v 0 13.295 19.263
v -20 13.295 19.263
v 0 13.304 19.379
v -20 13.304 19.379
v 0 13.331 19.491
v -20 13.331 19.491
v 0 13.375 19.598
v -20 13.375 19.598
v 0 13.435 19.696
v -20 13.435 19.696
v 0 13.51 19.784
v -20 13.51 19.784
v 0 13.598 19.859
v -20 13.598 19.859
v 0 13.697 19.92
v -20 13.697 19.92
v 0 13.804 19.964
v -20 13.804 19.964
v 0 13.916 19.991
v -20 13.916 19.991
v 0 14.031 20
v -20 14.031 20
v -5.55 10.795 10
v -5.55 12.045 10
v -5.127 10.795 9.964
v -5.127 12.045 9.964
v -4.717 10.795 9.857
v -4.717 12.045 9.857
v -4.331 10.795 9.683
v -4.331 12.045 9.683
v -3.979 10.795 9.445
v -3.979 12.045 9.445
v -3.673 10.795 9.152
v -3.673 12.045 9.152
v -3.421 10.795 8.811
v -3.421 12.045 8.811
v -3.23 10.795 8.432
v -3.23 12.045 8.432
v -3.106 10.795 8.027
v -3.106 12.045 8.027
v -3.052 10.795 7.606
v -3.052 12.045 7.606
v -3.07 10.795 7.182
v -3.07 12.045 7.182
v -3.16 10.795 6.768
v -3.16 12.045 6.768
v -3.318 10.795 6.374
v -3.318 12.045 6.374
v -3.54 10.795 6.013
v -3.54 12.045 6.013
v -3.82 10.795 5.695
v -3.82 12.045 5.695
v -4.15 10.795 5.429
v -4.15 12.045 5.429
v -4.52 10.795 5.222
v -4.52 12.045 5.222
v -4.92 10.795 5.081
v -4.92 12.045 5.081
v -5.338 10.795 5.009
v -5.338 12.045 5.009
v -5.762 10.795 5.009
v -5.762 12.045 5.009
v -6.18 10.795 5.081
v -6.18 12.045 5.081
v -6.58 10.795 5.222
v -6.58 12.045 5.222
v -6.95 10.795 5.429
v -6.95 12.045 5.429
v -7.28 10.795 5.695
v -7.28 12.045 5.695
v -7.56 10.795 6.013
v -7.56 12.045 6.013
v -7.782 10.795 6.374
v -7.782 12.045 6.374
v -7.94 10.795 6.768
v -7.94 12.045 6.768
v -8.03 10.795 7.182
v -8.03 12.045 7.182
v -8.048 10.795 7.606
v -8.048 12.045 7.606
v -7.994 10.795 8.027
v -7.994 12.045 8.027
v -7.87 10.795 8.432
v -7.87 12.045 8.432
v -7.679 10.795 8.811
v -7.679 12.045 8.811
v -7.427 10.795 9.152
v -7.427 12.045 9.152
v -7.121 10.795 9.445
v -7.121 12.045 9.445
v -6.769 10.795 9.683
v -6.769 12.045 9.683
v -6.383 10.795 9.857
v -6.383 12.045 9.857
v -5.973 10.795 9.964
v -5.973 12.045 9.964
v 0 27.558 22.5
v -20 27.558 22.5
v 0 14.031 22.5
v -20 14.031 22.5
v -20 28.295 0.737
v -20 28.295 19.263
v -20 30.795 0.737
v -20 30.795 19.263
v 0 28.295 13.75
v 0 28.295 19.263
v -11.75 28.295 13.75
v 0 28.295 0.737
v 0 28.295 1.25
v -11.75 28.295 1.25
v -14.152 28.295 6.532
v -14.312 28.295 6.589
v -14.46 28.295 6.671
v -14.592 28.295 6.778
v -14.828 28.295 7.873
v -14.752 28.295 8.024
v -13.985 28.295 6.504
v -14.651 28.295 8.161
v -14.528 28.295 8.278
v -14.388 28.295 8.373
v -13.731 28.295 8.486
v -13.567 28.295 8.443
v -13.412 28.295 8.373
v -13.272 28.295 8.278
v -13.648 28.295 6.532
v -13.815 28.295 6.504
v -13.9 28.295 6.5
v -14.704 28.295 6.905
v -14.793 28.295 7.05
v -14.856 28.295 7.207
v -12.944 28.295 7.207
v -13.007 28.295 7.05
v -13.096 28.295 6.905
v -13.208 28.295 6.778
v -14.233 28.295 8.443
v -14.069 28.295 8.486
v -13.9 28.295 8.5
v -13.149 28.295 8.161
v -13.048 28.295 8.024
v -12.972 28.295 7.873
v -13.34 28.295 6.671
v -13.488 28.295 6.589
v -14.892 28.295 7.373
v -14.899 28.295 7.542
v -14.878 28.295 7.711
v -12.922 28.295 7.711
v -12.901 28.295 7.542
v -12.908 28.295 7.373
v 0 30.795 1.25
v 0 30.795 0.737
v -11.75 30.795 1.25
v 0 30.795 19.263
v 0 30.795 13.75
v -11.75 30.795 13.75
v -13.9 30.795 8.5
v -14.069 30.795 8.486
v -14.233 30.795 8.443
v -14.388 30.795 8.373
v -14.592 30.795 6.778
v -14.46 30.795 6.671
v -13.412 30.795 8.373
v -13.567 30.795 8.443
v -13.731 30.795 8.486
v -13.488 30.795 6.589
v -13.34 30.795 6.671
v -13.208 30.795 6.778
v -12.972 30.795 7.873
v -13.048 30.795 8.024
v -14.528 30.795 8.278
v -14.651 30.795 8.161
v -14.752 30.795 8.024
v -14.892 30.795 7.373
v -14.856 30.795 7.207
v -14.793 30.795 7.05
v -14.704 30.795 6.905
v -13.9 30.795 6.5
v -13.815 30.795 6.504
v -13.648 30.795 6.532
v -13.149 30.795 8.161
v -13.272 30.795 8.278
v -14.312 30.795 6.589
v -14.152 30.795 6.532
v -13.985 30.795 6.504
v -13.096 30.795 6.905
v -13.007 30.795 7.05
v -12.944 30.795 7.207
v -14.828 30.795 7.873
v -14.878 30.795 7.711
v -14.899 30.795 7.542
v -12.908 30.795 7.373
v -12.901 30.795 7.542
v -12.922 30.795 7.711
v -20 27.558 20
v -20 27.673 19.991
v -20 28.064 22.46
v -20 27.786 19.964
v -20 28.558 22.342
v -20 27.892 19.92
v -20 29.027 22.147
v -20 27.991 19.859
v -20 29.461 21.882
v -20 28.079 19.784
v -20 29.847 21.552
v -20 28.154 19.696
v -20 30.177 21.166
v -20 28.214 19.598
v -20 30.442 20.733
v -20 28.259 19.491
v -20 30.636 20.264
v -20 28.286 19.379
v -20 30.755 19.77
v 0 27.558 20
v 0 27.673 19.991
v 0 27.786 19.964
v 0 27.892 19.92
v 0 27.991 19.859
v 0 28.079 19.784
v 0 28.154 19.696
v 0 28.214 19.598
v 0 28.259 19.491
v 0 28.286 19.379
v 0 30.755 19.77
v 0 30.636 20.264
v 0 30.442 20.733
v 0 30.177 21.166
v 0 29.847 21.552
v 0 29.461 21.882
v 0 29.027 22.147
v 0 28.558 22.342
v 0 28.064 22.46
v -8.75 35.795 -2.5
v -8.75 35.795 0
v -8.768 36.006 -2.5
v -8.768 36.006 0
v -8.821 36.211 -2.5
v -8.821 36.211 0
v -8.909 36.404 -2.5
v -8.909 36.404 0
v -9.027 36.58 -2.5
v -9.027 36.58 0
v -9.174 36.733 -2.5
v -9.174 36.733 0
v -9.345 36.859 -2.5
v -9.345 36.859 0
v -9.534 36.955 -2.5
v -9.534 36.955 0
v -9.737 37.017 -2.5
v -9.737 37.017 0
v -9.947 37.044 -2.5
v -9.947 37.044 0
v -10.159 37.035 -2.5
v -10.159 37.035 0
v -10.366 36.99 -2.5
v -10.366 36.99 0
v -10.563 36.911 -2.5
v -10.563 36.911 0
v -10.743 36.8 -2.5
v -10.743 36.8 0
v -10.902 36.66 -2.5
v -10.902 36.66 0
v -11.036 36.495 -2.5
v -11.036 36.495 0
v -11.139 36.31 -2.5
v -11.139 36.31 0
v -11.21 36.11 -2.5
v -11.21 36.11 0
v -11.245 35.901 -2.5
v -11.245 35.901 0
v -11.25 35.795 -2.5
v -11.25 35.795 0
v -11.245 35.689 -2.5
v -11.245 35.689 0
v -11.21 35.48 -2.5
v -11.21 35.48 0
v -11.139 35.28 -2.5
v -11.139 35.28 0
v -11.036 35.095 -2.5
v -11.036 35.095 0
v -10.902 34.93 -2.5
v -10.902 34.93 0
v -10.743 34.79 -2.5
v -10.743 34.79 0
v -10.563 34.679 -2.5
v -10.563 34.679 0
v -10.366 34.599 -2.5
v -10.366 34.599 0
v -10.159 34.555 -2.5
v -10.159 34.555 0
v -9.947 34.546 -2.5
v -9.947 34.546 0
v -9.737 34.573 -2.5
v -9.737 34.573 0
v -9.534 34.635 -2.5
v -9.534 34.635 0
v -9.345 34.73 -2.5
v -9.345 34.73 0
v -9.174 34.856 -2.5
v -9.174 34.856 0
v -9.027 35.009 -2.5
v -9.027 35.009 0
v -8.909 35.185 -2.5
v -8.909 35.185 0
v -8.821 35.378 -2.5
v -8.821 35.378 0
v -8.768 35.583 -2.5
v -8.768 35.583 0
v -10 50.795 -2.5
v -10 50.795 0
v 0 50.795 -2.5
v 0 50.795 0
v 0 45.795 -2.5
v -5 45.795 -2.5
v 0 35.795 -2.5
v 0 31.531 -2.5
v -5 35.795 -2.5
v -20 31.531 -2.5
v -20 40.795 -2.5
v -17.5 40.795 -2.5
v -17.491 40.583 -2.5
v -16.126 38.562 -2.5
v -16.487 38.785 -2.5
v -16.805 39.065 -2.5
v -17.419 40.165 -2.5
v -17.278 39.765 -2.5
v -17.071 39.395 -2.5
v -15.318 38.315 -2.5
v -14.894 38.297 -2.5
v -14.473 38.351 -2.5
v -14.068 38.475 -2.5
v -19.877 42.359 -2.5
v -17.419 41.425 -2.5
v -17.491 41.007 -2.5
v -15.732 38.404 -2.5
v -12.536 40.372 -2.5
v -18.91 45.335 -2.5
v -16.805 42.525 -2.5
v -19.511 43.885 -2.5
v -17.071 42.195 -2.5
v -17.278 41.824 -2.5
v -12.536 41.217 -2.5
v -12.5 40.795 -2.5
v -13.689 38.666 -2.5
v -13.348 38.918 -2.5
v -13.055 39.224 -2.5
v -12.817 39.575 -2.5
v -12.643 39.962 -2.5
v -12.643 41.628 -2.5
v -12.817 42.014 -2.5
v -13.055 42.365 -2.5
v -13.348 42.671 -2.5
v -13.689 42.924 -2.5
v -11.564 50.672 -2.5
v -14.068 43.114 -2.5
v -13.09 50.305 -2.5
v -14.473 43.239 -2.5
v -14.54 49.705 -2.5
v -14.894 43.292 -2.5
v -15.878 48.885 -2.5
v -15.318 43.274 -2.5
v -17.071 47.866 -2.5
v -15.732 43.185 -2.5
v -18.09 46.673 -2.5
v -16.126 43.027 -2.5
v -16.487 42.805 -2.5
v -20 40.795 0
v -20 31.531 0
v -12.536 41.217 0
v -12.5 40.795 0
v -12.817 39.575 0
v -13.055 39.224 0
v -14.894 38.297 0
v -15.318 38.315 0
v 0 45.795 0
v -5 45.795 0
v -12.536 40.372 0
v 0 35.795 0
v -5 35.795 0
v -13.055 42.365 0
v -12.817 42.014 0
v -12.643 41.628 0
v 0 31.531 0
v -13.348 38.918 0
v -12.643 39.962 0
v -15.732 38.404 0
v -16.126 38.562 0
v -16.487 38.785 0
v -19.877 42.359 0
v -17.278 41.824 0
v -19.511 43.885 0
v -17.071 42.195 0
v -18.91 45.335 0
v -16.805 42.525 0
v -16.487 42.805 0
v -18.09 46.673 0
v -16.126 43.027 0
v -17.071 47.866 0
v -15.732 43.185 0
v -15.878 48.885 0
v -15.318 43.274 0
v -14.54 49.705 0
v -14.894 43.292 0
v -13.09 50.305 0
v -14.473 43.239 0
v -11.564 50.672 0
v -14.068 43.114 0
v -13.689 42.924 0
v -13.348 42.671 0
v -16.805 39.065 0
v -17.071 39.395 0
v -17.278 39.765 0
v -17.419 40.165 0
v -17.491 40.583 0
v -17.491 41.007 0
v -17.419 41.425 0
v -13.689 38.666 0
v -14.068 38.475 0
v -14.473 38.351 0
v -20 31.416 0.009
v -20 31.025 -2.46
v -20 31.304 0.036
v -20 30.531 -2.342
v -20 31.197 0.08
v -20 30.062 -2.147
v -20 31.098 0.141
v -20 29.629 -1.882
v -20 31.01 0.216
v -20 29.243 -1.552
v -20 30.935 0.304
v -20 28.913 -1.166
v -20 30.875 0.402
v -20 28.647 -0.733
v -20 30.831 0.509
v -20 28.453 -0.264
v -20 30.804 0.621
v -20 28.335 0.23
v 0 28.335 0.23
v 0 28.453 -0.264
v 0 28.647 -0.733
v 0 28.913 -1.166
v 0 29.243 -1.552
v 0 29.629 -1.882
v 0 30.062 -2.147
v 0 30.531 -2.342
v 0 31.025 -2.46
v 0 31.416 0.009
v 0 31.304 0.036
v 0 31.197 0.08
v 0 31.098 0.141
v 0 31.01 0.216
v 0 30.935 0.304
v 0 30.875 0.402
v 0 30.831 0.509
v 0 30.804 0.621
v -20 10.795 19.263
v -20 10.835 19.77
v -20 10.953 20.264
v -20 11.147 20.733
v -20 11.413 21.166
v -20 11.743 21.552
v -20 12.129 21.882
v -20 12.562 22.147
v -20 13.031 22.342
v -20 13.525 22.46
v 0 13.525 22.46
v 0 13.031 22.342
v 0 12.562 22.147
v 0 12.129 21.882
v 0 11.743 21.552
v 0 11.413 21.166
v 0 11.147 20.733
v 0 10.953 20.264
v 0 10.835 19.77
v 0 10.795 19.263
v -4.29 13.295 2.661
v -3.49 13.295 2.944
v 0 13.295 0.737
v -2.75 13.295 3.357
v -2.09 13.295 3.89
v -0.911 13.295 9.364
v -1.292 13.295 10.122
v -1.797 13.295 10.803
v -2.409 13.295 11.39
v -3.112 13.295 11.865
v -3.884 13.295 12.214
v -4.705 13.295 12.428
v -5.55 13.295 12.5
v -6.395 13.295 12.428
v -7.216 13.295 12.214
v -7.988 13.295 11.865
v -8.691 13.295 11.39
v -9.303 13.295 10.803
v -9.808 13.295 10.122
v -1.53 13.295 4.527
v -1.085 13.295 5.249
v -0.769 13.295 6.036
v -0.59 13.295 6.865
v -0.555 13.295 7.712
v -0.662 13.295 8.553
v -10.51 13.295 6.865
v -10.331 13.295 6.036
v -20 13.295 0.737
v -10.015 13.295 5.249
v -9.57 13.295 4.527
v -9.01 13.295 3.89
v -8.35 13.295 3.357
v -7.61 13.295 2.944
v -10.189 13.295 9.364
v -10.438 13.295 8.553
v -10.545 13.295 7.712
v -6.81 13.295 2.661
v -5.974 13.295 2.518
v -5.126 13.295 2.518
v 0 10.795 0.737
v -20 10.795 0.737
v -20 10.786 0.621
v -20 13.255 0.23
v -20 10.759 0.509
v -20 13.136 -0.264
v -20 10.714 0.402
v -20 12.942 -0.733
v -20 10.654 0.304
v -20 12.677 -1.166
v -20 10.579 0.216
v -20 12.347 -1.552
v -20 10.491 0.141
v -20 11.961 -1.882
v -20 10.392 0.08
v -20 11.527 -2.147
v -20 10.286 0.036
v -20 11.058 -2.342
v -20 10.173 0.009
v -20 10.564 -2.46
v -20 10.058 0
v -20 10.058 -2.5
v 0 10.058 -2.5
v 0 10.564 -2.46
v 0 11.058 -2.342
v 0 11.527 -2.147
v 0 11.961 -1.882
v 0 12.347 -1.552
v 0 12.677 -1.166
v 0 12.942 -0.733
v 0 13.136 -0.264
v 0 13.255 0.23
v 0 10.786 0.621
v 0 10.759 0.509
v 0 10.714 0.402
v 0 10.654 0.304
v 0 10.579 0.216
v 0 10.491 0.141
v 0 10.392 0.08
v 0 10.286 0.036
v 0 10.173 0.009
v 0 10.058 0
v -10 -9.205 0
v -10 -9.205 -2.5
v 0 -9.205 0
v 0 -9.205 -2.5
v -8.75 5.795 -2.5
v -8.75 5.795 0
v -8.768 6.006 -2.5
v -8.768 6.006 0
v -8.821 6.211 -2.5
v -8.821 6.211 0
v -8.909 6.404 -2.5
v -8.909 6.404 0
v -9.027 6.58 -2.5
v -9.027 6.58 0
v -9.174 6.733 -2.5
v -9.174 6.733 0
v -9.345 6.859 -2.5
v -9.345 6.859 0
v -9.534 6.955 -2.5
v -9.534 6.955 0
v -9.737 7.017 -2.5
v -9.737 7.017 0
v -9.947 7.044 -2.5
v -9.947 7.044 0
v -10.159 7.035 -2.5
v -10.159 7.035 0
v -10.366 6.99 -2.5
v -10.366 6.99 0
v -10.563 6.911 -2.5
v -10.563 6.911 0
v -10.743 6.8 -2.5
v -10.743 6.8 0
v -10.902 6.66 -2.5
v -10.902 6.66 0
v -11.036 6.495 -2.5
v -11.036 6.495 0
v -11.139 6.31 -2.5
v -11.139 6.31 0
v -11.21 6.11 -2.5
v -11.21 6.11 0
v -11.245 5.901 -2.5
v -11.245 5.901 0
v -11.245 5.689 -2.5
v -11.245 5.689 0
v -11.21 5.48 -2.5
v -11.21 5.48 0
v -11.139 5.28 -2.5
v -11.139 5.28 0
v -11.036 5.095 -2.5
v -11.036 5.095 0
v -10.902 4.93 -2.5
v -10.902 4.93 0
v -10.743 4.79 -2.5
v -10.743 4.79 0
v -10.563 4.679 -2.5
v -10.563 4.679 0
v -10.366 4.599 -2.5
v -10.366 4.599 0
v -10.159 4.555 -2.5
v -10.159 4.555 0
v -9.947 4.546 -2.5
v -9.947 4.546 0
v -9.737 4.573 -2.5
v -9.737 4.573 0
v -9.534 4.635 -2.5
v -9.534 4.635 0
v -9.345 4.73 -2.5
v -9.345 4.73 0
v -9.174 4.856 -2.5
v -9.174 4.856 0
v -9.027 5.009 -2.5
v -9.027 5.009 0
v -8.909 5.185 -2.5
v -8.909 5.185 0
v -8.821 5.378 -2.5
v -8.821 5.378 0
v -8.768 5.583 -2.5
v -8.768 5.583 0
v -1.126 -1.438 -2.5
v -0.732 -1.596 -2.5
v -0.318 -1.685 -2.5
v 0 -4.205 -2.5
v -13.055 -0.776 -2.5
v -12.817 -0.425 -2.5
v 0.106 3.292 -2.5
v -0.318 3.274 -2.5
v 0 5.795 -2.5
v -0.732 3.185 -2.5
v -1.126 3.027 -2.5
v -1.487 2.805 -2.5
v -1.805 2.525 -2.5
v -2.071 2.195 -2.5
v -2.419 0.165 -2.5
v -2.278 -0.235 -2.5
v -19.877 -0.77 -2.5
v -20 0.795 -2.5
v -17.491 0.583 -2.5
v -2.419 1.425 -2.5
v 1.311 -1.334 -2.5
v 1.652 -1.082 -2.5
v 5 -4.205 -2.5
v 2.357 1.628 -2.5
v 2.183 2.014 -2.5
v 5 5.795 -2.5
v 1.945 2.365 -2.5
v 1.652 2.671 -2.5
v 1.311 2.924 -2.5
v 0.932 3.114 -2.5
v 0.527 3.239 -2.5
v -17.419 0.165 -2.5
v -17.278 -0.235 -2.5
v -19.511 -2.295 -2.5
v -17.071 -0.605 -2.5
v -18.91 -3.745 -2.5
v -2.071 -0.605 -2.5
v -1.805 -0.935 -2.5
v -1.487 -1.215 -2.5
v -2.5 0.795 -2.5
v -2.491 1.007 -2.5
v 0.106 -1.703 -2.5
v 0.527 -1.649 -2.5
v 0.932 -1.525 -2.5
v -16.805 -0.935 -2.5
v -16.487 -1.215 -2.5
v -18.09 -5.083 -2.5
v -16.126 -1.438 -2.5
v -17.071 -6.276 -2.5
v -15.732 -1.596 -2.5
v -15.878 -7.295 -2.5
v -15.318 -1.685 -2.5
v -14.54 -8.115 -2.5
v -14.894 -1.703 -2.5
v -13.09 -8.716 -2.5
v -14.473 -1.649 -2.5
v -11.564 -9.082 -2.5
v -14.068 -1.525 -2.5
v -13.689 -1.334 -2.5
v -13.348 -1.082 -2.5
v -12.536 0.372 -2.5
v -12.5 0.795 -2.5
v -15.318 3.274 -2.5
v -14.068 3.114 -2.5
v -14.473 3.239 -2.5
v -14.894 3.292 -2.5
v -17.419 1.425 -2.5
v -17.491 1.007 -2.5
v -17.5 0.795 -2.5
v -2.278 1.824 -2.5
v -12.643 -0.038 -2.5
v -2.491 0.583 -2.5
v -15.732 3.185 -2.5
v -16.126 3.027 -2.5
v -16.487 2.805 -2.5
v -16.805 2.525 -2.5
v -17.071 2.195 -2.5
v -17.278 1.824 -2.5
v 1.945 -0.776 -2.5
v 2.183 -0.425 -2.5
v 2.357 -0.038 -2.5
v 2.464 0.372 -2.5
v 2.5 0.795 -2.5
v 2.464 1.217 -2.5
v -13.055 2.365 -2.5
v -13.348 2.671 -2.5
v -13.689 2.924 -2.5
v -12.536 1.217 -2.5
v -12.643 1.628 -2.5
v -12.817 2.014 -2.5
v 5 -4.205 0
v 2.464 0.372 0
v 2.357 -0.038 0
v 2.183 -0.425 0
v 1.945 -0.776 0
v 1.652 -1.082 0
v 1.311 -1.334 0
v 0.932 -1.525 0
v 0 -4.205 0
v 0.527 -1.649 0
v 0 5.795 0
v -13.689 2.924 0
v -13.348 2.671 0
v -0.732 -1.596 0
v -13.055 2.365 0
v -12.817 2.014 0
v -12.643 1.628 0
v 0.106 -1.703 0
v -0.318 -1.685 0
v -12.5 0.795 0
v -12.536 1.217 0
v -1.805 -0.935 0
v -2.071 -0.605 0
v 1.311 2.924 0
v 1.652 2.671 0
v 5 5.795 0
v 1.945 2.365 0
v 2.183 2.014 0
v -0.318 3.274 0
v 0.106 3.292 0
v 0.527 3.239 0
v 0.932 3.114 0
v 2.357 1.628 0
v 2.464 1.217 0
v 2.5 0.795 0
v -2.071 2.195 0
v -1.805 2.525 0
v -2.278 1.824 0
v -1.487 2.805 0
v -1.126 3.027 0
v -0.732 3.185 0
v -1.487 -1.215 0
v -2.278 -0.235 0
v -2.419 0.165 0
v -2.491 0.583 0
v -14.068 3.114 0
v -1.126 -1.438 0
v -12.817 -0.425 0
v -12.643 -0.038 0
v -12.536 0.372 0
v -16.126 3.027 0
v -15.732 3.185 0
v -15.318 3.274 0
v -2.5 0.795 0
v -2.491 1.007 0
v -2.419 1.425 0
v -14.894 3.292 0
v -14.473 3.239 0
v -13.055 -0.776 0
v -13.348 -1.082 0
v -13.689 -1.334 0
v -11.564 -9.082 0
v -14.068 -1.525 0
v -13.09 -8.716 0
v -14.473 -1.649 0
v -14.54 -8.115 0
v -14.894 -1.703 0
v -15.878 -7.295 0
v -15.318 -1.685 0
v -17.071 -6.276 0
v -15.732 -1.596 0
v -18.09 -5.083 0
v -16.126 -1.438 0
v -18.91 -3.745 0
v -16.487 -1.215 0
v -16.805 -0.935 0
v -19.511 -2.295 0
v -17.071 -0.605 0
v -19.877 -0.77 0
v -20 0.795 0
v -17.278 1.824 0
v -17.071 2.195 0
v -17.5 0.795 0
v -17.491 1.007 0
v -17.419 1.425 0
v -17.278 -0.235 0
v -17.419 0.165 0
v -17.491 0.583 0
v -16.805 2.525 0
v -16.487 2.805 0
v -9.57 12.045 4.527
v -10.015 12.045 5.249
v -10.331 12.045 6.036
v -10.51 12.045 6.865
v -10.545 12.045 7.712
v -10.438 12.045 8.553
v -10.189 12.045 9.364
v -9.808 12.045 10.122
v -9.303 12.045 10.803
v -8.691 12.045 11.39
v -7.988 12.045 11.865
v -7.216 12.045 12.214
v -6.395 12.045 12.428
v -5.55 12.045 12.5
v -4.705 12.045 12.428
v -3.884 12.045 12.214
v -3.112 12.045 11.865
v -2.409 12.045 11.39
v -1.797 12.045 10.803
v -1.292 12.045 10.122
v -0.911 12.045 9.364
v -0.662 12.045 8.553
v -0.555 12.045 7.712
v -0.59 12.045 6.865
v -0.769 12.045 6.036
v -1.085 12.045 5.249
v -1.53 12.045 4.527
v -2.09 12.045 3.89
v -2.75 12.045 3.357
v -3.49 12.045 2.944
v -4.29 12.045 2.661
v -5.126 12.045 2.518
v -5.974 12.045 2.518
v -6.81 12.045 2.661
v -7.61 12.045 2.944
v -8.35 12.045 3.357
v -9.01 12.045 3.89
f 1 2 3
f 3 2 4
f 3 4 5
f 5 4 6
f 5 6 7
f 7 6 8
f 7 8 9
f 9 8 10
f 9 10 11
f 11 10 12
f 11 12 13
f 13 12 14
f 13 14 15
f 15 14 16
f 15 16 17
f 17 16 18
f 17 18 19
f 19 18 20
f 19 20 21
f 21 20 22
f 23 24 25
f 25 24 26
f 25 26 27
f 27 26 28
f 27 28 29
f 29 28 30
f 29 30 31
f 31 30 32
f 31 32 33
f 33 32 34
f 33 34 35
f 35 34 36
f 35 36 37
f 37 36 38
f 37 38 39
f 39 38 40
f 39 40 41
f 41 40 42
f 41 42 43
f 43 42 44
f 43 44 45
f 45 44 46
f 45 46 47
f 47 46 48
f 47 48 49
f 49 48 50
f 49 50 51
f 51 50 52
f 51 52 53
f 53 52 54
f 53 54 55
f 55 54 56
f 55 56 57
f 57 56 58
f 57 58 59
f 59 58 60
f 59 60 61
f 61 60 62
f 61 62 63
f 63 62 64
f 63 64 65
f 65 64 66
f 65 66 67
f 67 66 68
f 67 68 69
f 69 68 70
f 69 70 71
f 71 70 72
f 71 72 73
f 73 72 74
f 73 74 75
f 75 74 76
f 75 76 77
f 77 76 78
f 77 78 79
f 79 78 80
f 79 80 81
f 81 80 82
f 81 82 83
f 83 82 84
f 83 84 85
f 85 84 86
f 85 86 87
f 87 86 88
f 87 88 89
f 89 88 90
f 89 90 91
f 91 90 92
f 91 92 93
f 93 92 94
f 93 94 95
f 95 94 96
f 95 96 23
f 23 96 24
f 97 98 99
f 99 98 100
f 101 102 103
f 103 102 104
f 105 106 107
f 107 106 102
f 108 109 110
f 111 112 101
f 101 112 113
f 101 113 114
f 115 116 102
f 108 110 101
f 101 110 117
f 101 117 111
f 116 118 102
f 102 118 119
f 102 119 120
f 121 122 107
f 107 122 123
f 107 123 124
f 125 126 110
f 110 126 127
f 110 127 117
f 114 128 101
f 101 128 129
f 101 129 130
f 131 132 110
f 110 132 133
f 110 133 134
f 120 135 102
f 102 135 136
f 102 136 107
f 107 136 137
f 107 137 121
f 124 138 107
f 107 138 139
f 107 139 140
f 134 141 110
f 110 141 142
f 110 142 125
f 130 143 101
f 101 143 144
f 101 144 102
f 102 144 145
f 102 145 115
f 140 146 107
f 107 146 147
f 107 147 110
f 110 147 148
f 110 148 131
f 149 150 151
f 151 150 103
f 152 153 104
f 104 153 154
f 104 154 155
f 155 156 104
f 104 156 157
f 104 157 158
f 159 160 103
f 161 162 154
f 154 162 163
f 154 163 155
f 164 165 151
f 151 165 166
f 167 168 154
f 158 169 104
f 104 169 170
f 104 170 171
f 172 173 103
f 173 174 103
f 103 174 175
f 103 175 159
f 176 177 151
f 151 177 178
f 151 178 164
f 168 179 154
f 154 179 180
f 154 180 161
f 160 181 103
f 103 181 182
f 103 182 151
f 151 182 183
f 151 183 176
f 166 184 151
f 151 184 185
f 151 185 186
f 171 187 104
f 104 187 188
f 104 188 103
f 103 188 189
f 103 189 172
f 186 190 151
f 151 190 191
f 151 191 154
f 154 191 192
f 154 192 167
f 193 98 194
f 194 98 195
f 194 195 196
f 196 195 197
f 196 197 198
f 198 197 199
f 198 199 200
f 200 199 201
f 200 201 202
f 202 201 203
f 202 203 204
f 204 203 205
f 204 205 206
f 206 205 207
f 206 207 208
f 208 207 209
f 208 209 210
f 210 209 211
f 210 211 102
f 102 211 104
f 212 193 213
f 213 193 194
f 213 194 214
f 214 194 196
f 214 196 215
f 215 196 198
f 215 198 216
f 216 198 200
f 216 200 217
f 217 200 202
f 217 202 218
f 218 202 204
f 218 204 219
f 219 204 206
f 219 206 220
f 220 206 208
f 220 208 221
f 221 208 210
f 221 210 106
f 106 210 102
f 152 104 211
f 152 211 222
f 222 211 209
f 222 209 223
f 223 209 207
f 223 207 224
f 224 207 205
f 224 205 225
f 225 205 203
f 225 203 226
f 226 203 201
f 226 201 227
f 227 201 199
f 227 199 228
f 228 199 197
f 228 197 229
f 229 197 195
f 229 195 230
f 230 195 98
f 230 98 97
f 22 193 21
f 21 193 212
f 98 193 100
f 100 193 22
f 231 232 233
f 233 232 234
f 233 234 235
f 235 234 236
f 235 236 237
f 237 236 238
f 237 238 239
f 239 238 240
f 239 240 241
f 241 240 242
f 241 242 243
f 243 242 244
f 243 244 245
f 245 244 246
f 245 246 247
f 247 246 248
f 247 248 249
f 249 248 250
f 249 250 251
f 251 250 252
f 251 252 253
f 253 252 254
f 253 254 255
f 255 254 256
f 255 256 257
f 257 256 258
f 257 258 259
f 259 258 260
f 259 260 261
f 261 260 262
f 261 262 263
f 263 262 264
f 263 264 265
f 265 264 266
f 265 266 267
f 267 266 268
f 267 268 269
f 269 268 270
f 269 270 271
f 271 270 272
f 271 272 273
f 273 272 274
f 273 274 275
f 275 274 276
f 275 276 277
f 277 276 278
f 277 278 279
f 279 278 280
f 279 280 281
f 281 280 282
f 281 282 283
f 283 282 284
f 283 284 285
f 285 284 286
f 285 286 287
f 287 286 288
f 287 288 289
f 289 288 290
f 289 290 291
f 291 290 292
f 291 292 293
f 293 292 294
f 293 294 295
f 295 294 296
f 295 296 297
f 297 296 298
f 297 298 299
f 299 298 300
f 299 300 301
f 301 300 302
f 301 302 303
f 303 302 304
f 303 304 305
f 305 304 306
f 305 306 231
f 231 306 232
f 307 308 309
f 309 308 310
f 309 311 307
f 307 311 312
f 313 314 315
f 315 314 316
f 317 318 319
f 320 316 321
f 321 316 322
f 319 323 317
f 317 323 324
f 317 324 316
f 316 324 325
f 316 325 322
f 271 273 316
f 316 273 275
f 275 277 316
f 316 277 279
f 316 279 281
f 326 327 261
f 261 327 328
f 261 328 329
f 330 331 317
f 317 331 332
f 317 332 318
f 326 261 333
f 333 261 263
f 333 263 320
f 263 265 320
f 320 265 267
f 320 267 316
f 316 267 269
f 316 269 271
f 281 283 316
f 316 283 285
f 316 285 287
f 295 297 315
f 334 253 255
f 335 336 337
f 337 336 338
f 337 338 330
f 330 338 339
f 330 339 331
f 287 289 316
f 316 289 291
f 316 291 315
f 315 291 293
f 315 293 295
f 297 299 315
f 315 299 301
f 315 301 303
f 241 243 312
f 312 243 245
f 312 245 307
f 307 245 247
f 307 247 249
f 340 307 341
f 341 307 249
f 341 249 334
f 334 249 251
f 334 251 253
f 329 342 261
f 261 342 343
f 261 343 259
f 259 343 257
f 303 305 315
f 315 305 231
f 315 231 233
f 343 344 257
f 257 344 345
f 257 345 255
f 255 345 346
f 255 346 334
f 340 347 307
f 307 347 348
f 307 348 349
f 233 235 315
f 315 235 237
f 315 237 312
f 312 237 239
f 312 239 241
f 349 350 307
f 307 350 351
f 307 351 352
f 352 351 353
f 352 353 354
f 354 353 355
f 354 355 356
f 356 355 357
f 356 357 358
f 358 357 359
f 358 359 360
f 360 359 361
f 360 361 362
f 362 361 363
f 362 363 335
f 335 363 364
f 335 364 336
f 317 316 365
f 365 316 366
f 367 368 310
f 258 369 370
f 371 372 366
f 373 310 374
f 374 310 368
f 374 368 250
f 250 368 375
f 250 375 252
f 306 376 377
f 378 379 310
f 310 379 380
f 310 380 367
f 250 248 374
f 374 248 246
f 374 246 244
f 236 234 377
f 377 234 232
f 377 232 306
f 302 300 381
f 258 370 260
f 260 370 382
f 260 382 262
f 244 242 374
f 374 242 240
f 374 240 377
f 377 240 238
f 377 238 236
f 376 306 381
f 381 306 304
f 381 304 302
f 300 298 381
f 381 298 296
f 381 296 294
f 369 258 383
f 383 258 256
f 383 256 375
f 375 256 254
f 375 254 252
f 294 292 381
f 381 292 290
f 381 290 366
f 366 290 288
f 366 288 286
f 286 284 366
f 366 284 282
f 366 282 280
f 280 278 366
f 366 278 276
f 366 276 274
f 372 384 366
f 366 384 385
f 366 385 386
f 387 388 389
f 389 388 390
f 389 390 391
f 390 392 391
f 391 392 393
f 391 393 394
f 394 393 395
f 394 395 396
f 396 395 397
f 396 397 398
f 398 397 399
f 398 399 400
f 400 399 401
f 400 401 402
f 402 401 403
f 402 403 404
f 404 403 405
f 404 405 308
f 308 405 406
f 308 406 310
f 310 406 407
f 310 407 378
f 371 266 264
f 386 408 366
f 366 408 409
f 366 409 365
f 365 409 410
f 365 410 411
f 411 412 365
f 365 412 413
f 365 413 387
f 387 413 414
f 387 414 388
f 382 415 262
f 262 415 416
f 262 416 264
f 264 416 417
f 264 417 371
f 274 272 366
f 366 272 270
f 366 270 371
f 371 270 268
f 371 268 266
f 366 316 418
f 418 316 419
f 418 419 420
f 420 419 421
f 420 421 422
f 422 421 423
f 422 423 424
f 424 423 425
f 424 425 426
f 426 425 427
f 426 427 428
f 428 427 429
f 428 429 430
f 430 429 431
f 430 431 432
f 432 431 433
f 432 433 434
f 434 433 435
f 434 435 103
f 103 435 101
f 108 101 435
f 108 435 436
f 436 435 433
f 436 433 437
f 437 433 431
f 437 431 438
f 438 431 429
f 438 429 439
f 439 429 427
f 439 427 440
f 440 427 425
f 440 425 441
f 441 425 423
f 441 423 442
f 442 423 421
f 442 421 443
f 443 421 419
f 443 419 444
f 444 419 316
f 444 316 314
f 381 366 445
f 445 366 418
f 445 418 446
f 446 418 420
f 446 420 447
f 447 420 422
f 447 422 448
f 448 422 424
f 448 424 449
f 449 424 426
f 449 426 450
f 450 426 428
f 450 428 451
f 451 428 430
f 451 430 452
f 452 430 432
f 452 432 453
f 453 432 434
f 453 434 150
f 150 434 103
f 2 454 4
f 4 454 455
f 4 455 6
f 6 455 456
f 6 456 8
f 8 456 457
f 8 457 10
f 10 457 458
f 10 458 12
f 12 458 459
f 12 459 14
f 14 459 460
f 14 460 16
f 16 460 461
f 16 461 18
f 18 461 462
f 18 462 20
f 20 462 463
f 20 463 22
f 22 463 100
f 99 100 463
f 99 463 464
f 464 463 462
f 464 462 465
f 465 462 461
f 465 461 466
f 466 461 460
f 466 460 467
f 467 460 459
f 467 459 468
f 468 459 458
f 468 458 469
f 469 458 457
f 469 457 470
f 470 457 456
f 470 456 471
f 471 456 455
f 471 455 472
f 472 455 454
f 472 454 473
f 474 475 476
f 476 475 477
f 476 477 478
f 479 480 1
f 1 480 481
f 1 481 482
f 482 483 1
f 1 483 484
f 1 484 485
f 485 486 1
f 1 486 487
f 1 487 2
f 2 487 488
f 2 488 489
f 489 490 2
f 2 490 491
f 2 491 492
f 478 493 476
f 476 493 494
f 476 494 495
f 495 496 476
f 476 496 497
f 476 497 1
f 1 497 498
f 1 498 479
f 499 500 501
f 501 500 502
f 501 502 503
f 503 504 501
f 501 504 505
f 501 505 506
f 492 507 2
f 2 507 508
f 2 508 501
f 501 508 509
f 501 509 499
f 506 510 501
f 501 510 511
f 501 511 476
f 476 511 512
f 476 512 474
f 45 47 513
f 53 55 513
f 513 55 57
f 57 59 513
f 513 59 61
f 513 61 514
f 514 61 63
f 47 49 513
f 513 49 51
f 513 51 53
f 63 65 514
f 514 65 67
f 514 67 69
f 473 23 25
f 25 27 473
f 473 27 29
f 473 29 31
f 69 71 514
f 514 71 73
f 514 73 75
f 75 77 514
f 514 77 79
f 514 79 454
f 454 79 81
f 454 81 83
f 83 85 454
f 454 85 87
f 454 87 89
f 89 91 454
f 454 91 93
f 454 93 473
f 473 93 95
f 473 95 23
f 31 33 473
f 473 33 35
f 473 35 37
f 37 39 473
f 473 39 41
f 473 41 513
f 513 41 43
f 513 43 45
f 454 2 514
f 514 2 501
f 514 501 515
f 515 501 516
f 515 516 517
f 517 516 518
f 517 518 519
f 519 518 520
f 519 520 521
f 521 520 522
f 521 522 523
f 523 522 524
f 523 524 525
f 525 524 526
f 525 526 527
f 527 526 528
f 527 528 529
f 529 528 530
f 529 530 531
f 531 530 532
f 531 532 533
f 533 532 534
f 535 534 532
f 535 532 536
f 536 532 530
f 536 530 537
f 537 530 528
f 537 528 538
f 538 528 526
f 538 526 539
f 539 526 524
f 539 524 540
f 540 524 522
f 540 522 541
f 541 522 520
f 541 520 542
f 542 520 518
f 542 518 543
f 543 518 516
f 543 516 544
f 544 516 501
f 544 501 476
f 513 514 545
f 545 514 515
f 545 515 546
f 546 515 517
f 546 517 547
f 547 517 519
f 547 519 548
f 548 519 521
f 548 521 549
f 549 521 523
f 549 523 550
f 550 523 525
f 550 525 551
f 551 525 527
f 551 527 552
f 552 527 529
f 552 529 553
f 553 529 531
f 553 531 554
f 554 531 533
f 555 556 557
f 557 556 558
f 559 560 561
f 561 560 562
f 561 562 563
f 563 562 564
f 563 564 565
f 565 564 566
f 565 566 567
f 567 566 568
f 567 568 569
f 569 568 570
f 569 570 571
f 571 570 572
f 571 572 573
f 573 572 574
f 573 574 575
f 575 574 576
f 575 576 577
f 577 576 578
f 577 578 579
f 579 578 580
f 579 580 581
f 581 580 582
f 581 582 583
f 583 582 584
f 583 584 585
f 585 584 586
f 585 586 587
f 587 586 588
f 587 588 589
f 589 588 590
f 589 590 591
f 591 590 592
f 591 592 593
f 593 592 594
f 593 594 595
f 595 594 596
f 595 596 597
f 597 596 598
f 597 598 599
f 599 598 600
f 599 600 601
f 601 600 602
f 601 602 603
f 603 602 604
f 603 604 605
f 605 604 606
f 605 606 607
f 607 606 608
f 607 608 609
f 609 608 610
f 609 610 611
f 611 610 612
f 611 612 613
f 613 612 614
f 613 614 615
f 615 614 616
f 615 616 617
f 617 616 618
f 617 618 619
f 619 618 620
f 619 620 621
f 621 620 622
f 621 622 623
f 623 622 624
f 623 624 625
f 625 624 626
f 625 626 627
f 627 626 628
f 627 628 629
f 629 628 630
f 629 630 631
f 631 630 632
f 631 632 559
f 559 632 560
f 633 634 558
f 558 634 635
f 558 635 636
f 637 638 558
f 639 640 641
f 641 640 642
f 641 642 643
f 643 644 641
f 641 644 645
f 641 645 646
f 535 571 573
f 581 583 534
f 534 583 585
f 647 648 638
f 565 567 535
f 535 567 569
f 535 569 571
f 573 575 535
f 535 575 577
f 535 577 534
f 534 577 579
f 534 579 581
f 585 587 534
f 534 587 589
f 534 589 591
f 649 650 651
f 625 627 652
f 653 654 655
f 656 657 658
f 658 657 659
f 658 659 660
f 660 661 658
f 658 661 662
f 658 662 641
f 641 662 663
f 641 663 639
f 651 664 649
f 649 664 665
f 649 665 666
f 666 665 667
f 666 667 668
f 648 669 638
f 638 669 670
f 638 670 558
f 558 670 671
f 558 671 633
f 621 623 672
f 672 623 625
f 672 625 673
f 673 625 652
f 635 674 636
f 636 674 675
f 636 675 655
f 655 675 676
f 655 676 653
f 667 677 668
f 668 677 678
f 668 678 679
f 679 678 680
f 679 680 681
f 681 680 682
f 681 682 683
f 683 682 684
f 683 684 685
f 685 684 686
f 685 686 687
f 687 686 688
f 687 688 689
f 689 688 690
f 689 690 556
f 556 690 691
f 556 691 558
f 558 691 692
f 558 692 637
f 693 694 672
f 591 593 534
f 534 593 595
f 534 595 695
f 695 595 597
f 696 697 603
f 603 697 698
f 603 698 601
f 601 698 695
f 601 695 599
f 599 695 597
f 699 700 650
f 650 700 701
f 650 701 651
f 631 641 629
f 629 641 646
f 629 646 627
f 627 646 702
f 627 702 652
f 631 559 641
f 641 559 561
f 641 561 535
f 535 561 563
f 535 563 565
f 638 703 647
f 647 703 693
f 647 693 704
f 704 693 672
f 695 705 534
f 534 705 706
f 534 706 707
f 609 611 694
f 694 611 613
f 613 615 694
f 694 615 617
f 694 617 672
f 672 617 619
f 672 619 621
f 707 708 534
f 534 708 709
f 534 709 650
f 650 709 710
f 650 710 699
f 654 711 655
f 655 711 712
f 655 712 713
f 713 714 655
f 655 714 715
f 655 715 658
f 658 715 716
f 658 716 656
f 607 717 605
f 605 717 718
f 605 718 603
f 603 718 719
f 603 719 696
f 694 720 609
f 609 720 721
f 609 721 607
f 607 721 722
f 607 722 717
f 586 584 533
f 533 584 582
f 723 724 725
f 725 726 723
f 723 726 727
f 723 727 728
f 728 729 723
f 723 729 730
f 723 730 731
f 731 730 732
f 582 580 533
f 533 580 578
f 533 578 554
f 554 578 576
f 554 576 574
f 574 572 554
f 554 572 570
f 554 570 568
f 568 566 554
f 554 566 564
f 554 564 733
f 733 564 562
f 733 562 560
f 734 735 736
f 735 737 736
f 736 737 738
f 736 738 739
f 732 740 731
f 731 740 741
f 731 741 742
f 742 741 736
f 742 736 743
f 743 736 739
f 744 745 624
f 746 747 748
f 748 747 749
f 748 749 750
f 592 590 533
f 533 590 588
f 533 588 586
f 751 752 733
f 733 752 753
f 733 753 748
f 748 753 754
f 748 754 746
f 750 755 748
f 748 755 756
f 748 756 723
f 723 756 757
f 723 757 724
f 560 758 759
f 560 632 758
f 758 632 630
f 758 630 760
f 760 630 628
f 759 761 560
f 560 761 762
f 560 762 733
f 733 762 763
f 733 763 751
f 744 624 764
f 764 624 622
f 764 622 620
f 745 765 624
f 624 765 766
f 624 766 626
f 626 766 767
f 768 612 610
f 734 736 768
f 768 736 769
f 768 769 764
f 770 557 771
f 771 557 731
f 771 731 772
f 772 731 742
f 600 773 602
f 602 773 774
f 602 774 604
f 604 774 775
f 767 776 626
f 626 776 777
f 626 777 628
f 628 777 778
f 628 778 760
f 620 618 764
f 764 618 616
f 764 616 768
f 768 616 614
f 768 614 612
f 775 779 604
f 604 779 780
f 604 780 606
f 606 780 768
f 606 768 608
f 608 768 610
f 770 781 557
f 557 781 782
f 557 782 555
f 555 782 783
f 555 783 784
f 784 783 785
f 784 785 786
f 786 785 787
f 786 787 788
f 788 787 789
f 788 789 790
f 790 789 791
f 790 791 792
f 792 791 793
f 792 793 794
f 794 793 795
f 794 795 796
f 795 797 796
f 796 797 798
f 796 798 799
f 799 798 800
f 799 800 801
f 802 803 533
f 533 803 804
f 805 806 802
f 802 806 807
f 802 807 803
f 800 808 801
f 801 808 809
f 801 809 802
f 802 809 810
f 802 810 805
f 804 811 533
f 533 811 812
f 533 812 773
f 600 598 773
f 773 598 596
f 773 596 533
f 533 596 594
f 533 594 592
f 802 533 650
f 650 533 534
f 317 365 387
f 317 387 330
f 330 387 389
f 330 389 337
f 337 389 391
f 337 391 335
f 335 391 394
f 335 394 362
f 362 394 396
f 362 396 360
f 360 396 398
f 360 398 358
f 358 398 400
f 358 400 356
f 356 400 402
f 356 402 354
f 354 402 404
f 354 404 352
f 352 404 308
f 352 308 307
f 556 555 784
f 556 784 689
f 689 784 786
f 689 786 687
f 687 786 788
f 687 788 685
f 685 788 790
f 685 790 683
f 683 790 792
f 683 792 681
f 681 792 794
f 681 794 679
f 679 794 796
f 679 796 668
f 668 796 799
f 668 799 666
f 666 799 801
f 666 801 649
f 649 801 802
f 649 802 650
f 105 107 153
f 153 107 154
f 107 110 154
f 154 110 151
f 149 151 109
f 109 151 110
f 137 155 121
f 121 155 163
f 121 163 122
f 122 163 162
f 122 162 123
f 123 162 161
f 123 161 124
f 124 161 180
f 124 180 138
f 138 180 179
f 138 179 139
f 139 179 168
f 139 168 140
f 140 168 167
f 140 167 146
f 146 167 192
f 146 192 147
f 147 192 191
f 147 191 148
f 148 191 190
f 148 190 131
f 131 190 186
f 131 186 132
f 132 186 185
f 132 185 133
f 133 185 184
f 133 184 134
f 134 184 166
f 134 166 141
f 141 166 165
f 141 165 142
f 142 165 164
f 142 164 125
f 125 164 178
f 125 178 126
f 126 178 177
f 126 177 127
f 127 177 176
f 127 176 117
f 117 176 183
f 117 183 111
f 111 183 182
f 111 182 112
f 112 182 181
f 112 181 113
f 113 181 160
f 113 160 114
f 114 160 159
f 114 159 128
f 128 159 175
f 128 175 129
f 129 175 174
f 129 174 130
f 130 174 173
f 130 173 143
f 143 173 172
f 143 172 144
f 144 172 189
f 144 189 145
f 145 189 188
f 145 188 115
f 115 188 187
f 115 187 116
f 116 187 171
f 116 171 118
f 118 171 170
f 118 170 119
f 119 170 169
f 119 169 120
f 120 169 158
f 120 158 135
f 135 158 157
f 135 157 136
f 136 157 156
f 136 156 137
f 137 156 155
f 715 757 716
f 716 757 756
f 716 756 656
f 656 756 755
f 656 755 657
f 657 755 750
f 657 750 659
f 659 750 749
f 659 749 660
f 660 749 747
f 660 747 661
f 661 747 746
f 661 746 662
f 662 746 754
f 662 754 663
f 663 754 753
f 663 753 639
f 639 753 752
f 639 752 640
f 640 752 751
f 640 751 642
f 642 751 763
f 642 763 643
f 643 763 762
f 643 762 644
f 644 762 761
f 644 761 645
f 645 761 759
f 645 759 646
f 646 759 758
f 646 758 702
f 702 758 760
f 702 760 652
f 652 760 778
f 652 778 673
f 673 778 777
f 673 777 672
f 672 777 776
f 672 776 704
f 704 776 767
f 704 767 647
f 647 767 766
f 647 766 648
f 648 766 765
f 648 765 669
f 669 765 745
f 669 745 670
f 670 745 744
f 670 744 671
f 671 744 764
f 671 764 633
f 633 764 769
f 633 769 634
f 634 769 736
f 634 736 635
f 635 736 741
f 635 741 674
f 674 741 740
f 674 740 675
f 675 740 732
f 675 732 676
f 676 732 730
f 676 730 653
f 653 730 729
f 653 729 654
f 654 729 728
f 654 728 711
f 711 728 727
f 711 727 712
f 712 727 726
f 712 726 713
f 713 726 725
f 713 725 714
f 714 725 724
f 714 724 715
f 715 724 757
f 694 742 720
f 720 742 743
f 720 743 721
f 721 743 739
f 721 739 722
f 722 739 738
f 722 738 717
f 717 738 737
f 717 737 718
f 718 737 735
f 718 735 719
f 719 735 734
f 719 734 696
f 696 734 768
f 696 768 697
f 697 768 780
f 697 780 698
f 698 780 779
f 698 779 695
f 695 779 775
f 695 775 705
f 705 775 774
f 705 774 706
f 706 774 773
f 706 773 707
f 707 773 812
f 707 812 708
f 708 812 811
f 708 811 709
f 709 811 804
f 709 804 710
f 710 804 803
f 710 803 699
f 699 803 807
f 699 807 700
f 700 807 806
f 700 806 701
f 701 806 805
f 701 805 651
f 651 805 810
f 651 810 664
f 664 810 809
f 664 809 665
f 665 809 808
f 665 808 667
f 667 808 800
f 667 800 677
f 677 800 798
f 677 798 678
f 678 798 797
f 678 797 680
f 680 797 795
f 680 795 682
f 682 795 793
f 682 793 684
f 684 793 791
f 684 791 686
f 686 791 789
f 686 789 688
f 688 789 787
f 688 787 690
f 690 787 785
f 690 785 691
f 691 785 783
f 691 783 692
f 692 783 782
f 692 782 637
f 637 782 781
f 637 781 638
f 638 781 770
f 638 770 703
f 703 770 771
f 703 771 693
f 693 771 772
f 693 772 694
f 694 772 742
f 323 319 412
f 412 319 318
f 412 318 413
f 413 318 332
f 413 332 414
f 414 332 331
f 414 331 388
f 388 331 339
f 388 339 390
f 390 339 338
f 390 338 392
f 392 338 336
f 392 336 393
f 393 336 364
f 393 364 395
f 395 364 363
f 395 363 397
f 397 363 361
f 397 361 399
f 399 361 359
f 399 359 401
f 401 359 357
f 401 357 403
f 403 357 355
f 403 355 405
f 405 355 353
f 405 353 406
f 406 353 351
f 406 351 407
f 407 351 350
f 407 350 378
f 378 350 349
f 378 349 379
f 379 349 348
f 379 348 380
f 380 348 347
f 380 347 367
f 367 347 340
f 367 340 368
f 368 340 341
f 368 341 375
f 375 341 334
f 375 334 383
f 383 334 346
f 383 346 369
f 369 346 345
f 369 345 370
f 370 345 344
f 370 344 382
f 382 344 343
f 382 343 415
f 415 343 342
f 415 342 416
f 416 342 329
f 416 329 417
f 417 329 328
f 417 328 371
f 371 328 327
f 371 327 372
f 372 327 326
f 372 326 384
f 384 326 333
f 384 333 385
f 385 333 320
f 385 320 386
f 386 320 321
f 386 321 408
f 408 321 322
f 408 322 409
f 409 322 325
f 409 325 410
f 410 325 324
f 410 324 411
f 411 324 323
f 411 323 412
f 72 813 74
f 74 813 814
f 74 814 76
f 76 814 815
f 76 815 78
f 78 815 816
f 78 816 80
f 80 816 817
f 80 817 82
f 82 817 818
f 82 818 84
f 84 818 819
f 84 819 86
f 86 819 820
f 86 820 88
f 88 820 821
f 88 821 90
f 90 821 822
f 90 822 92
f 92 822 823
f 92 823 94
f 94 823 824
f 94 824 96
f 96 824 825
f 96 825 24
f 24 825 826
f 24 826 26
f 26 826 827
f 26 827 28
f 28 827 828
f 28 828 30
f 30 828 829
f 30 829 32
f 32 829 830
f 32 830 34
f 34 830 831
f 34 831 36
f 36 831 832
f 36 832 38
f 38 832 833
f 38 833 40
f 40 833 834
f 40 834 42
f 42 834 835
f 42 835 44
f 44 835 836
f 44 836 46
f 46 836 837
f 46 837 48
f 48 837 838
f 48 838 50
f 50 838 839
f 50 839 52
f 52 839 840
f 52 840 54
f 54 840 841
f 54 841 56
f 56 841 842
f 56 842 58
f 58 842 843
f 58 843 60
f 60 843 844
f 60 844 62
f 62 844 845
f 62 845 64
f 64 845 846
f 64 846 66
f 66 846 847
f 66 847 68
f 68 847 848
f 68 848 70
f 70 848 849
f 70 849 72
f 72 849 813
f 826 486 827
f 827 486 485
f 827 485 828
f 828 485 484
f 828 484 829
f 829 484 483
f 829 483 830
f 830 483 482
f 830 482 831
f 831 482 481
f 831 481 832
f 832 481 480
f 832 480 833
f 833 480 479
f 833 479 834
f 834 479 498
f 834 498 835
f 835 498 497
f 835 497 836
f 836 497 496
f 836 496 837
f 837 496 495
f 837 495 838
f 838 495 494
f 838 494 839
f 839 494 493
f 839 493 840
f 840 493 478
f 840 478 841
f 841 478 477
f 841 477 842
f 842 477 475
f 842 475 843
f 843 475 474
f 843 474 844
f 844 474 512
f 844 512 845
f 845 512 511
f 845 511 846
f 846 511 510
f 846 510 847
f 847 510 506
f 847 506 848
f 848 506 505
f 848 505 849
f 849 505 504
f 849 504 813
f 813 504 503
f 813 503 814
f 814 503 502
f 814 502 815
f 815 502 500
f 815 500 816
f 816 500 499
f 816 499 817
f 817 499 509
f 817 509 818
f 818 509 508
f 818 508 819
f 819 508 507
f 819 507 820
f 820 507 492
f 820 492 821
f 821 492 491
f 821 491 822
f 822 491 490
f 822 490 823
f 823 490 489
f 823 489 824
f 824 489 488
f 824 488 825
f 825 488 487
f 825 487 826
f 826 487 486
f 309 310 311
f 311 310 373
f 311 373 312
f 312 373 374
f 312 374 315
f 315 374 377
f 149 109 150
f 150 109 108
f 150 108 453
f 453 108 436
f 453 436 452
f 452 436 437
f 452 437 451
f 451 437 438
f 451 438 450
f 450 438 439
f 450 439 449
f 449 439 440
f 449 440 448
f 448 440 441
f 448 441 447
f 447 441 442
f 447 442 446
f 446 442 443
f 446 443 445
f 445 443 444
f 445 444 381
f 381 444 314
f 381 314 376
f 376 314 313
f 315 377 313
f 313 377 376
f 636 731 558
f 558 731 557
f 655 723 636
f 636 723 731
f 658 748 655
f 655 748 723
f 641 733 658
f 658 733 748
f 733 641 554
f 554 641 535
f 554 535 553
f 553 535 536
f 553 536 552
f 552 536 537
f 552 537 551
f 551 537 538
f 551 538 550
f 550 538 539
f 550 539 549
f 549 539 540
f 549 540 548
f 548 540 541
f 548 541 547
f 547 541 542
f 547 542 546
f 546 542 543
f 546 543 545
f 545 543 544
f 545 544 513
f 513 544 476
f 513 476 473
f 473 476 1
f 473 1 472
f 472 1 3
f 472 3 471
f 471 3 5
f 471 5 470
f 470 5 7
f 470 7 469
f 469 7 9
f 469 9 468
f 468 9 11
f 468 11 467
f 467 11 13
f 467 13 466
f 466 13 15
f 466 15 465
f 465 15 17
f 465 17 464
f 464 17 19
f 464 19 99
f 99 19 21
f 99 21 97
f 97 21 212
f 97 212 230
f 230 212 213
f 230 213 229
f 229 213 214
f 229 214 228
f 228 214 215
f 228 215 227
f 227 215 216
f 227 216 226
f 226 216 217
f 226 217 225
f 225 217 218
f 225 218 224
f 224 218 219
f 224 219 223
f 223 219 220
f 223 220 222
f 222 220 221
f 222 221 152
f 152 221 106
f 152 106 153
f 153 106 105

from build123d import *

# Parameters (mm, degrees)
SKETCH1_W           = 40
SKETCH1_H           = 60
SKETCH1_R           = 1.25
BASE_FLANGE1_DEPTH  = 2.5
SKETCH15_R          = 1
CUT_EXTRUDE3_DEPTH  = 10
JOG3_START          = -2.5
JOG3_OUTLINE_W      = 40
JOG3_OUTLINE_H      = 58.294687966
JOG3_OUTLINE_R      = 1
JOG3_OUTLINE_R_2    = 1.25
JOG3_DEPTH          = 2.5
JOG3_2_OUTLINE_W    = 40
JOG3_2_OUTLINE_H    = 1.705312034
JOG3_2_DEPTH        = 0.332528284
JOG3_START_2        = 19.2634
JOG3_3_OUTLINE_W    = 40
JOG3_3_OUTLINE_H    = 40
JOG3_3_OUTLINE_R    = 1
JOG3_3_OUTLINE_R_2  = 1.25
JOG3_3_DEPTH        = 3.2366
JOG3_4_OUTLINE_W    = 40
JOG3_4_OUTLINE_H    = 20.794687966
JOG3_4_OUTLINE_R    = 1.25
JOG3_4_DEPTH        = 3.2366
JOG3_5_OUTLINE_W    = 40
JOG3_5_OUTLINE_H    = 2.5
JOG3_5_DEPTH        = 20
JOG3_START_3        = 20
JOG3_6_OUTLINE_R    = 1.25
JOG3_6_OUTLINE_R_2  = 1
JOG3_6_DEPTH        = 2.5
JOG3_START_4        = -20
JOG3_7_DEPTH        = 40
JOG4_START          = -20
JOG4_DEPTH          = 40
JOG4_2_DEPTH        = 40
JOG4_START_2        = -3
JOG4_3_OUTLINE_R    = 1.25
JOG4_3_DEPTH        = 4
FILLET1_R           = 10
SKETCH18_R          = 2.5
BOSS_EXTRUDE1_DEPTH = 2.5
SKETCH19_R          = 1
SKETCH19_W          = 23.5
SKETCH19_H          = 12.5
CUT_EXTRUDE4_DEPTH  = 2.5
SKETCH20_R          = 2.5
CUT_EXTRUDE6_DEPTH  = 10
SKETCH23_R          = 2.5
CUT_EXTRUDE7_DEPTH  = 51.062460986
SKETCH24_R          = 5
CUT_EXTRUDE8_DEPTH  = 1.25
SKETCH26_R          = 2.5
CUT_EXTRUDE12_DEPTH = 51.062460987
SKETCH27_W          = 20
SKETCH27_H          = 13.5268
CUT_EXTRUDE13_DEPTH = 61.042487703


with BuildPart() as part:
    # Base-Flange1: sheet metal written as solids
    # Sketch1 → Base-Flange1 (new body)
    with BuildSketch(Plane.XY):
        Rectangle(SKETCH1_W, SKETCH1_H)
        with Locations((10, 15)):
            Circle(SKETCH1_R, mode=Mode.SUBTRACT)
        with Locations(Location((10, -15, 0), (0, 0, 180))):
            Circle(SKETCH1_R, mode=Mode.SUBTRACT)
        with Locations((-10, -15)):
            Circle(SKETCH1_R, mode=Mode.SUBTRACT)
        with Locations(Location((-10, 15, 0), (0, 0, 180))):
            Circle(SKETCH1_R, mode=Mode.SUBTRACT)
    extrude(amount=-BASE_FLANGE1_DEPTH)

    # Sketch15 → Cut-Extrude3 (cut)
    with BuildSketch(Plane.XY):
        with Locations((12, 0)):
            Circle(SKETCH15_R)
        with Locations(Location((-17, 0, 0), (0, 0, 180))):
            Circle(SKETCH15_R)
    extrude(amount=-CUT_EXTRUDE3_DEPTH, mode=Mode.SUBTRACT)

    # Jog3: read off the stored shape, not the designer's step
    # Jog3 outline → Jog3 (cut)
    with BuildSketch(Plane.XY.offset(JOG3_START)):
        with Locations((0, -0.852656017)):
            Rectangle(JOG3_OUTLINE_W, JOG3_OUTLINE_H)
        with Locations((-17, 0)):
            Circle(JOG3_OUTLINE_R, mode=Mode.SUBTRACT)
        with Locations((12, 0)):
            Circle(JOG3_OUTLINE_R, mode=Mode.SUBTRACT)
        with Locations((-10, 15)):
            Circle(JOG3_OUTLINE_R_2, mode=Mode.SUBTRACT)
        with Locations((10, 15)):
            Circle(JOG3_OUTLINE_R_2, mode=Mode.SUBTRACT)
        with Locations((10, -15)):
            Circle(JOG3_OUTLINE_R_2, mode=Mode.SUBTRACT)
        with Locations((-10, -15)):
            Circle(JOG3_OUTLINE_R_2, mode=Mode.SUBTRACT)
    extrude(amount=JOG3_DEPTH, mode=Mode.SUBTRACT)

    # Jog3 2 outline → Jog3 2 (cut)
    with BuildSketch(Plane.XY.offset(JOG3_START)):
        with Locations((0, 29.147343983)):
            Rectangle(JOG3_2_OUTLINE_W, JOG3_2_OUTLINE_H)
    extrude(amount=JOG3_2_DEPTH, mode=Mode.SUBTRACT)

    # Jog3 4 outline → Jog3 4 (add)
    with BuildSketch(Plane.XY.offset(JOG3_START)):
        with Locations((0, 40.397343983)):
            Rectangle(JOG3_4_OUTLINE_W, JOG3_4_OUTLINE_H)
        with Locations((10, 35.794687966)):
            Circle(JOG3_4_OUTLINE_R, mode=Mode.SUBTRACT)
        with Locations((-10, 35.794687966)):
            Circle(JOG3_4_OUTLINE_R, mode=Mode.SUBTRACT)
    extrude(amount=JOG3_4_DEPTH)



with BuildPart() as body_2:
    # Jog3 3 outline → Jog3 3 (new body)
    with BuildSketch(Plane.XY.offset(JOG3_START_2)):
        with Locations((0, 10.794687966)):
            Rectangle(JOG3_3_OUTLINE_W, JOG3_3_OUTLINE_H)
        with Locations((12, 20.794687966)):
            Circle(JOG3_3_OUTLINE_R, mode=Mode.SUBTRACT)
        with Locations((-17, 0)):
            Circle(JOG3_3_OUTLINE_R, mode=Mode.SUBTRACT)
        with Locations((-10, 5.794687966)):
            Circle(JOG3_3_OUTLINE_R_2, mode=Mode.SUBTRACT)
        with Locations((12, 0)):
            Circle(JOG3_3_OUTLINE_R, mode=Mode.SUBTRACT)
        with Locations((10, 5.794687966)):
            Circle(JOG3_3_OUTLINE_R_2, mode=Mode.SUBTRACT)
        with Locations((-17, 20.794687966)):
            Circle(JOG3_3_OUTLINE_R, mode=Mode.SUBTRACT)
        with Locations((-10, 15)):
            Circle(JOG3_3_OUTLINE_R_2, mode=Mode.SUBTRACT)
        with Locations((10, 15)):
            Circle(JOG3_3_OUTLINE_R_2, mode=Mode.SUBTRACT)
    extrude(amount=JOG3_3_DEPTH)


with BuildPart() as part_1:
    add(part.part)

    add(body_2.part)  # Jog3 5 merges body 2
    # Jog3 5 outline → Jog3 5 (add)
    with BuildSketch(Plane.XY):
        with Locations((0, 29.544687966)):
            Rectangle(JOG3_5_OUTLINE_W, JOG3_5_OUTLINE_H)
    extrude(amount=JOG3_5_DEPTH)

    # Jog3 6 outline → Jog3 6 (add)
    with BuildSketch(Plane.XY.offset(JOG3_START_3)):
        with Locations((10, 15)):
            Circle(JOG3_6_OUTLINE_R)
        with Locations((-10, 15)):
            Circle(JOG3_6_OUTLINE_R)
        with Locations((12, 0)):
            Circle(JOG3_6_OUTLINE_R_2)
        with Locations((-17, 0)):
            Circle(JOG3_6_OUTLINE_R_2)
    extrude(amount=JOG3_6_DEPTH)

    # Jog3 7 outline → Jog3 7 (cut)
    with BuildSketch(Plane.YZ.offset(JOG3_START_4)):
        with BuildLine():
            ThreePointArc((28.294687966, 19.2634), (28.078942821, 19.784254855), (27.558087966, 20))
            Line((27.558087966, 20), (-9.205312034, 20))
            Line((-9.205312034, 20), (-9.205312034, 19.2634))
            Line((-9.205312034, 19.2634), (28.294687966, 19.2634))
        make_face()
        with BuildLine():
            ThreePointArc((31.531287966, -2.5), (29.242666158, -1.552021808), (28.294687966, 0.7366))
            Line((28.294687966, 0.7366), (28.294687966, -2.167471716))
            Line((28.294687966, -2.167471716), (30, -2.167471716))
            Line((30, -2.167471716), (30, -2.5))
            Line((30, -2.5), (31.531287966, -2.5))
        make_face()
        with BuildLine():
            Line((31.531287966, 0), (50.794687966, 0))
            Line((50.794687966, 0), (50.794687966, 0.7366))
            Line((50.794687966, 0.7366), (30.794687966, 0.7366))
            ThreePointArc((30.794687966, 0.7366), (31.010433111, 0.215745145), (31.531287966, 0))
        make_face()
        with BuildLine():
            Line((30.794687966, 22.5), (27.558087966, 22.5))
            ThreePointArc((27.558087966, 22.5), (29.846709774, 21.552021808), (30.794687966, 19.2634))
            Line((30.794687966, 19.2634), (30.794687966, 22.5))
        make_face()
    extrude(amount=JOG3_7_DEPTH, mode=Mode.SUBTRACT)

    # Jog4: read off the stored shape, not the designer's step
    # Jog4 outline → Jog4 (cut)
    with BuildSketch(Plane.YZ.offset(JOG4_START)):
        with BuildLine():
            Line((-9.205312034, 20), (10.87962174, 20))
            ThreePointArc((10.87962174, 20), (12.019882984, 21.799110859), (14.031287966, 22.5))
            Line((14.031287966, 22.5), (-9.205312034, 22.5))
            Line((-9.205312034, 22.5), (-9.205312034, 20))
        make_face()
    extrude(amount=JOG4_DEPTH, mode=Mode.SUBTRACT)

    # Jog4 2 outline → Jog4 2 (add)
    with BuildSketch(Plane.YZ.offset(JOG4_START)):
        with BuildLine():
            Line((-9.205312034, 0), (-9.205312034, -2.5))
            Line((-9.205312034, -2.5), (10.058087966, -2.5))
            ThreePointArc((10.058087966, -2.5), (12.346709774, -1.552021808), (13.294687966, 0.7366))
            Line((13.294687966, 0.7366), (13.294687966, 19.2634))
            ThreePointArc((13.294687966, 19.2634), (13.510433111, 19.784254855), (14.031287966, 20))
            Line((14.031287966, 20), (10.87962174, 20))
            ThreePointArc((10.87962174, 20), (10.81599152, 19.634140241), (10.794687966, 19.2634))
            Line((10.794687966, 19.2634), (10.794687966, 0.7366))
            ThreePointArc((10.794687966, 0.7366), (10.578942821, 0.215745145), (10.058087966, 0))
            Line((10.058087966, 0), (-9.205312034, 0))
        make_face()
    extrude(amount=JOG4_2_DEPTH)

    # Jog4 3 outline → Jog4 3 (cut)
    with BuildSketch(Plane.XY.offset(JOG4_START_2)):
        with Locations((-10, 5.794687966)):
            Circle(JOG4_3_OUTLINE_R)
        with Locations((10, 5.794687966)):
            Circle(JOG4_3_OUTLINE_R)
    extrude(amount=JOG4_3_DEPTH, mode=Mode.SUBTRACT)

    # Fillet1
    fillet1_edges = [part_1.edges().sort_by_distance(p)[0] for p in [
        (20, -9.205312034, -1.25),
        (-20, -9.205312034, -1.25),
        (-20, 50.794687966, -1.25),
        (20, 50.794687966, -1.25),
    ]]
    fillet(fillet1_edges, radius=FILLET1_R)

    # Sketch18 → Boss-Extrude1 (add)
    with BuildSketch(Plane.XY.offset(22.5)):
        with Locations((12, 20.794687966)):
            Circle(SKETCH18_R)
        with Locations((-17, 20.794687966)):
            Circle(SKETCH18_R)
    extrude(amount=-BOSS_EXTRUDE1_DEPTH)

    # Sketch19 → Cut-Extrude4 (cut)
    with BuildSketch(Plane(origin=(0, 30.794687966, 0), x_dir=(1, 0, 0), z_dir=(0, 1, 0))):
        with Locations(Location((13.9, -7.5, 0), (0, 0, 270))):
            Circle(SKETCH19_R)
        with Locations(Location((-13.9, -7.5, 0), (0, 0, 90))):
            Circle(SKETCH19_R)
        with Locations((0, -7.5)):
            Rectangle(SKETCH19_W, SKETCH19_H)
    extrude(amount=-CUT_EXTRUDE4_DEPTH, mode=Mode.SUBTRACT)

    # Sketch20 → Cut-Extrude6 (cut)
    with BuildSketch(Plane.XY):
        with Locations((0, 40.794687966)):
            Circle(SKETCH20_R)
        with Locations(Location((0, 0.794687966, 0), (0, 0, 180))):
            Circle(SKETCH20_R)
        with Locations((15, 0.794687966)):
            Circle(SKETCH20_R)
        with Locations(Location((-15, 0.794687966, 0), (0, 0, 180))):
            Circle(SKETCH20_R)
        with Locations(Location((15, 40.794687966, 0), (0, 0, 180))):
            Circle(SKETCH20_R)
        with Locations((-15, 40.794687966)):
            Circle(SKETCH20_R)
    extrude(amount=-CUT_EXTRUDE6_DEPTH, mode=Mode.SUBTRACT)

    # Sketch23 → Cut-Extrude7 (cut, through all)
    with BuildSketch(Plane(origin=(0, 30.794687966, 0), x_dir=(1, 0, 0), z_dir=(0, 1, 0))):
        with Locations(Location((-5.55, -7.5, 0), (0, 0, 270))):
            Circle(SKETCH23_R)
    extrude(amount=-CUT_EXTRUDE7_DEPTH, mode=Mode.SUBTRACT)

    # Sketch24 → Cut-Extrude8 (cut)
    with BuildSketch(Plane(origin=(0, 13.294687966, 0), x_dir=(1, 0, 0), z_dir=(0, 1, 0))):
        with Locations(Location((-5.55, -7.5, 0), (0, 0, 270))):
            Circle(SKETCH24_R)
    extrude(amount=-CUT_EXTRUDE8_DEPTH, mode=Mode.SUBTRACT)

    # Sketch26 → Cut-Extrude12 (cut, through all)
    with BuildSketch(Plane.XZ.offset(-10.794687966)):
        with Locations(Location((9.45, 17.5, 0), (0, 0, 135.141364755))):
            Circle(SKETCH26_R)
    extrude(amount=-CUT_EXTRUDE12_DEPTH, mode=Mode.SUBTRACT)

    # Sketch27 → Cut-Extrude13 (cut, through all)
    with BuildSketch(Plane.XY.offset(22.5)):
        Polygon((20, 50.794687966), (0, 50.794687966), (0, 45.794687966), (-5, 45.794687966), (-5, 35.794687966), (0, 35.794687966), (0, 27.558087966), (20, 27.558087966), align=None)
        with Locations((10, 20.794687966)):
            Rectangle(SKETCH27_W, SKETCH27_H)
        Polygon((20, -9.205312034), (20, 14.031287966), (0, 14.031287966), (0, 5.794687966), (5, 5.794687966), (5, -4.205312034), (0, -4.205312034), (0, -9.205312034), align=None)
    extrude(amount=-CUT_EXTRUDE13_DEPTH, mode=Mode.SUBTRACT)


solid = part_1.part
